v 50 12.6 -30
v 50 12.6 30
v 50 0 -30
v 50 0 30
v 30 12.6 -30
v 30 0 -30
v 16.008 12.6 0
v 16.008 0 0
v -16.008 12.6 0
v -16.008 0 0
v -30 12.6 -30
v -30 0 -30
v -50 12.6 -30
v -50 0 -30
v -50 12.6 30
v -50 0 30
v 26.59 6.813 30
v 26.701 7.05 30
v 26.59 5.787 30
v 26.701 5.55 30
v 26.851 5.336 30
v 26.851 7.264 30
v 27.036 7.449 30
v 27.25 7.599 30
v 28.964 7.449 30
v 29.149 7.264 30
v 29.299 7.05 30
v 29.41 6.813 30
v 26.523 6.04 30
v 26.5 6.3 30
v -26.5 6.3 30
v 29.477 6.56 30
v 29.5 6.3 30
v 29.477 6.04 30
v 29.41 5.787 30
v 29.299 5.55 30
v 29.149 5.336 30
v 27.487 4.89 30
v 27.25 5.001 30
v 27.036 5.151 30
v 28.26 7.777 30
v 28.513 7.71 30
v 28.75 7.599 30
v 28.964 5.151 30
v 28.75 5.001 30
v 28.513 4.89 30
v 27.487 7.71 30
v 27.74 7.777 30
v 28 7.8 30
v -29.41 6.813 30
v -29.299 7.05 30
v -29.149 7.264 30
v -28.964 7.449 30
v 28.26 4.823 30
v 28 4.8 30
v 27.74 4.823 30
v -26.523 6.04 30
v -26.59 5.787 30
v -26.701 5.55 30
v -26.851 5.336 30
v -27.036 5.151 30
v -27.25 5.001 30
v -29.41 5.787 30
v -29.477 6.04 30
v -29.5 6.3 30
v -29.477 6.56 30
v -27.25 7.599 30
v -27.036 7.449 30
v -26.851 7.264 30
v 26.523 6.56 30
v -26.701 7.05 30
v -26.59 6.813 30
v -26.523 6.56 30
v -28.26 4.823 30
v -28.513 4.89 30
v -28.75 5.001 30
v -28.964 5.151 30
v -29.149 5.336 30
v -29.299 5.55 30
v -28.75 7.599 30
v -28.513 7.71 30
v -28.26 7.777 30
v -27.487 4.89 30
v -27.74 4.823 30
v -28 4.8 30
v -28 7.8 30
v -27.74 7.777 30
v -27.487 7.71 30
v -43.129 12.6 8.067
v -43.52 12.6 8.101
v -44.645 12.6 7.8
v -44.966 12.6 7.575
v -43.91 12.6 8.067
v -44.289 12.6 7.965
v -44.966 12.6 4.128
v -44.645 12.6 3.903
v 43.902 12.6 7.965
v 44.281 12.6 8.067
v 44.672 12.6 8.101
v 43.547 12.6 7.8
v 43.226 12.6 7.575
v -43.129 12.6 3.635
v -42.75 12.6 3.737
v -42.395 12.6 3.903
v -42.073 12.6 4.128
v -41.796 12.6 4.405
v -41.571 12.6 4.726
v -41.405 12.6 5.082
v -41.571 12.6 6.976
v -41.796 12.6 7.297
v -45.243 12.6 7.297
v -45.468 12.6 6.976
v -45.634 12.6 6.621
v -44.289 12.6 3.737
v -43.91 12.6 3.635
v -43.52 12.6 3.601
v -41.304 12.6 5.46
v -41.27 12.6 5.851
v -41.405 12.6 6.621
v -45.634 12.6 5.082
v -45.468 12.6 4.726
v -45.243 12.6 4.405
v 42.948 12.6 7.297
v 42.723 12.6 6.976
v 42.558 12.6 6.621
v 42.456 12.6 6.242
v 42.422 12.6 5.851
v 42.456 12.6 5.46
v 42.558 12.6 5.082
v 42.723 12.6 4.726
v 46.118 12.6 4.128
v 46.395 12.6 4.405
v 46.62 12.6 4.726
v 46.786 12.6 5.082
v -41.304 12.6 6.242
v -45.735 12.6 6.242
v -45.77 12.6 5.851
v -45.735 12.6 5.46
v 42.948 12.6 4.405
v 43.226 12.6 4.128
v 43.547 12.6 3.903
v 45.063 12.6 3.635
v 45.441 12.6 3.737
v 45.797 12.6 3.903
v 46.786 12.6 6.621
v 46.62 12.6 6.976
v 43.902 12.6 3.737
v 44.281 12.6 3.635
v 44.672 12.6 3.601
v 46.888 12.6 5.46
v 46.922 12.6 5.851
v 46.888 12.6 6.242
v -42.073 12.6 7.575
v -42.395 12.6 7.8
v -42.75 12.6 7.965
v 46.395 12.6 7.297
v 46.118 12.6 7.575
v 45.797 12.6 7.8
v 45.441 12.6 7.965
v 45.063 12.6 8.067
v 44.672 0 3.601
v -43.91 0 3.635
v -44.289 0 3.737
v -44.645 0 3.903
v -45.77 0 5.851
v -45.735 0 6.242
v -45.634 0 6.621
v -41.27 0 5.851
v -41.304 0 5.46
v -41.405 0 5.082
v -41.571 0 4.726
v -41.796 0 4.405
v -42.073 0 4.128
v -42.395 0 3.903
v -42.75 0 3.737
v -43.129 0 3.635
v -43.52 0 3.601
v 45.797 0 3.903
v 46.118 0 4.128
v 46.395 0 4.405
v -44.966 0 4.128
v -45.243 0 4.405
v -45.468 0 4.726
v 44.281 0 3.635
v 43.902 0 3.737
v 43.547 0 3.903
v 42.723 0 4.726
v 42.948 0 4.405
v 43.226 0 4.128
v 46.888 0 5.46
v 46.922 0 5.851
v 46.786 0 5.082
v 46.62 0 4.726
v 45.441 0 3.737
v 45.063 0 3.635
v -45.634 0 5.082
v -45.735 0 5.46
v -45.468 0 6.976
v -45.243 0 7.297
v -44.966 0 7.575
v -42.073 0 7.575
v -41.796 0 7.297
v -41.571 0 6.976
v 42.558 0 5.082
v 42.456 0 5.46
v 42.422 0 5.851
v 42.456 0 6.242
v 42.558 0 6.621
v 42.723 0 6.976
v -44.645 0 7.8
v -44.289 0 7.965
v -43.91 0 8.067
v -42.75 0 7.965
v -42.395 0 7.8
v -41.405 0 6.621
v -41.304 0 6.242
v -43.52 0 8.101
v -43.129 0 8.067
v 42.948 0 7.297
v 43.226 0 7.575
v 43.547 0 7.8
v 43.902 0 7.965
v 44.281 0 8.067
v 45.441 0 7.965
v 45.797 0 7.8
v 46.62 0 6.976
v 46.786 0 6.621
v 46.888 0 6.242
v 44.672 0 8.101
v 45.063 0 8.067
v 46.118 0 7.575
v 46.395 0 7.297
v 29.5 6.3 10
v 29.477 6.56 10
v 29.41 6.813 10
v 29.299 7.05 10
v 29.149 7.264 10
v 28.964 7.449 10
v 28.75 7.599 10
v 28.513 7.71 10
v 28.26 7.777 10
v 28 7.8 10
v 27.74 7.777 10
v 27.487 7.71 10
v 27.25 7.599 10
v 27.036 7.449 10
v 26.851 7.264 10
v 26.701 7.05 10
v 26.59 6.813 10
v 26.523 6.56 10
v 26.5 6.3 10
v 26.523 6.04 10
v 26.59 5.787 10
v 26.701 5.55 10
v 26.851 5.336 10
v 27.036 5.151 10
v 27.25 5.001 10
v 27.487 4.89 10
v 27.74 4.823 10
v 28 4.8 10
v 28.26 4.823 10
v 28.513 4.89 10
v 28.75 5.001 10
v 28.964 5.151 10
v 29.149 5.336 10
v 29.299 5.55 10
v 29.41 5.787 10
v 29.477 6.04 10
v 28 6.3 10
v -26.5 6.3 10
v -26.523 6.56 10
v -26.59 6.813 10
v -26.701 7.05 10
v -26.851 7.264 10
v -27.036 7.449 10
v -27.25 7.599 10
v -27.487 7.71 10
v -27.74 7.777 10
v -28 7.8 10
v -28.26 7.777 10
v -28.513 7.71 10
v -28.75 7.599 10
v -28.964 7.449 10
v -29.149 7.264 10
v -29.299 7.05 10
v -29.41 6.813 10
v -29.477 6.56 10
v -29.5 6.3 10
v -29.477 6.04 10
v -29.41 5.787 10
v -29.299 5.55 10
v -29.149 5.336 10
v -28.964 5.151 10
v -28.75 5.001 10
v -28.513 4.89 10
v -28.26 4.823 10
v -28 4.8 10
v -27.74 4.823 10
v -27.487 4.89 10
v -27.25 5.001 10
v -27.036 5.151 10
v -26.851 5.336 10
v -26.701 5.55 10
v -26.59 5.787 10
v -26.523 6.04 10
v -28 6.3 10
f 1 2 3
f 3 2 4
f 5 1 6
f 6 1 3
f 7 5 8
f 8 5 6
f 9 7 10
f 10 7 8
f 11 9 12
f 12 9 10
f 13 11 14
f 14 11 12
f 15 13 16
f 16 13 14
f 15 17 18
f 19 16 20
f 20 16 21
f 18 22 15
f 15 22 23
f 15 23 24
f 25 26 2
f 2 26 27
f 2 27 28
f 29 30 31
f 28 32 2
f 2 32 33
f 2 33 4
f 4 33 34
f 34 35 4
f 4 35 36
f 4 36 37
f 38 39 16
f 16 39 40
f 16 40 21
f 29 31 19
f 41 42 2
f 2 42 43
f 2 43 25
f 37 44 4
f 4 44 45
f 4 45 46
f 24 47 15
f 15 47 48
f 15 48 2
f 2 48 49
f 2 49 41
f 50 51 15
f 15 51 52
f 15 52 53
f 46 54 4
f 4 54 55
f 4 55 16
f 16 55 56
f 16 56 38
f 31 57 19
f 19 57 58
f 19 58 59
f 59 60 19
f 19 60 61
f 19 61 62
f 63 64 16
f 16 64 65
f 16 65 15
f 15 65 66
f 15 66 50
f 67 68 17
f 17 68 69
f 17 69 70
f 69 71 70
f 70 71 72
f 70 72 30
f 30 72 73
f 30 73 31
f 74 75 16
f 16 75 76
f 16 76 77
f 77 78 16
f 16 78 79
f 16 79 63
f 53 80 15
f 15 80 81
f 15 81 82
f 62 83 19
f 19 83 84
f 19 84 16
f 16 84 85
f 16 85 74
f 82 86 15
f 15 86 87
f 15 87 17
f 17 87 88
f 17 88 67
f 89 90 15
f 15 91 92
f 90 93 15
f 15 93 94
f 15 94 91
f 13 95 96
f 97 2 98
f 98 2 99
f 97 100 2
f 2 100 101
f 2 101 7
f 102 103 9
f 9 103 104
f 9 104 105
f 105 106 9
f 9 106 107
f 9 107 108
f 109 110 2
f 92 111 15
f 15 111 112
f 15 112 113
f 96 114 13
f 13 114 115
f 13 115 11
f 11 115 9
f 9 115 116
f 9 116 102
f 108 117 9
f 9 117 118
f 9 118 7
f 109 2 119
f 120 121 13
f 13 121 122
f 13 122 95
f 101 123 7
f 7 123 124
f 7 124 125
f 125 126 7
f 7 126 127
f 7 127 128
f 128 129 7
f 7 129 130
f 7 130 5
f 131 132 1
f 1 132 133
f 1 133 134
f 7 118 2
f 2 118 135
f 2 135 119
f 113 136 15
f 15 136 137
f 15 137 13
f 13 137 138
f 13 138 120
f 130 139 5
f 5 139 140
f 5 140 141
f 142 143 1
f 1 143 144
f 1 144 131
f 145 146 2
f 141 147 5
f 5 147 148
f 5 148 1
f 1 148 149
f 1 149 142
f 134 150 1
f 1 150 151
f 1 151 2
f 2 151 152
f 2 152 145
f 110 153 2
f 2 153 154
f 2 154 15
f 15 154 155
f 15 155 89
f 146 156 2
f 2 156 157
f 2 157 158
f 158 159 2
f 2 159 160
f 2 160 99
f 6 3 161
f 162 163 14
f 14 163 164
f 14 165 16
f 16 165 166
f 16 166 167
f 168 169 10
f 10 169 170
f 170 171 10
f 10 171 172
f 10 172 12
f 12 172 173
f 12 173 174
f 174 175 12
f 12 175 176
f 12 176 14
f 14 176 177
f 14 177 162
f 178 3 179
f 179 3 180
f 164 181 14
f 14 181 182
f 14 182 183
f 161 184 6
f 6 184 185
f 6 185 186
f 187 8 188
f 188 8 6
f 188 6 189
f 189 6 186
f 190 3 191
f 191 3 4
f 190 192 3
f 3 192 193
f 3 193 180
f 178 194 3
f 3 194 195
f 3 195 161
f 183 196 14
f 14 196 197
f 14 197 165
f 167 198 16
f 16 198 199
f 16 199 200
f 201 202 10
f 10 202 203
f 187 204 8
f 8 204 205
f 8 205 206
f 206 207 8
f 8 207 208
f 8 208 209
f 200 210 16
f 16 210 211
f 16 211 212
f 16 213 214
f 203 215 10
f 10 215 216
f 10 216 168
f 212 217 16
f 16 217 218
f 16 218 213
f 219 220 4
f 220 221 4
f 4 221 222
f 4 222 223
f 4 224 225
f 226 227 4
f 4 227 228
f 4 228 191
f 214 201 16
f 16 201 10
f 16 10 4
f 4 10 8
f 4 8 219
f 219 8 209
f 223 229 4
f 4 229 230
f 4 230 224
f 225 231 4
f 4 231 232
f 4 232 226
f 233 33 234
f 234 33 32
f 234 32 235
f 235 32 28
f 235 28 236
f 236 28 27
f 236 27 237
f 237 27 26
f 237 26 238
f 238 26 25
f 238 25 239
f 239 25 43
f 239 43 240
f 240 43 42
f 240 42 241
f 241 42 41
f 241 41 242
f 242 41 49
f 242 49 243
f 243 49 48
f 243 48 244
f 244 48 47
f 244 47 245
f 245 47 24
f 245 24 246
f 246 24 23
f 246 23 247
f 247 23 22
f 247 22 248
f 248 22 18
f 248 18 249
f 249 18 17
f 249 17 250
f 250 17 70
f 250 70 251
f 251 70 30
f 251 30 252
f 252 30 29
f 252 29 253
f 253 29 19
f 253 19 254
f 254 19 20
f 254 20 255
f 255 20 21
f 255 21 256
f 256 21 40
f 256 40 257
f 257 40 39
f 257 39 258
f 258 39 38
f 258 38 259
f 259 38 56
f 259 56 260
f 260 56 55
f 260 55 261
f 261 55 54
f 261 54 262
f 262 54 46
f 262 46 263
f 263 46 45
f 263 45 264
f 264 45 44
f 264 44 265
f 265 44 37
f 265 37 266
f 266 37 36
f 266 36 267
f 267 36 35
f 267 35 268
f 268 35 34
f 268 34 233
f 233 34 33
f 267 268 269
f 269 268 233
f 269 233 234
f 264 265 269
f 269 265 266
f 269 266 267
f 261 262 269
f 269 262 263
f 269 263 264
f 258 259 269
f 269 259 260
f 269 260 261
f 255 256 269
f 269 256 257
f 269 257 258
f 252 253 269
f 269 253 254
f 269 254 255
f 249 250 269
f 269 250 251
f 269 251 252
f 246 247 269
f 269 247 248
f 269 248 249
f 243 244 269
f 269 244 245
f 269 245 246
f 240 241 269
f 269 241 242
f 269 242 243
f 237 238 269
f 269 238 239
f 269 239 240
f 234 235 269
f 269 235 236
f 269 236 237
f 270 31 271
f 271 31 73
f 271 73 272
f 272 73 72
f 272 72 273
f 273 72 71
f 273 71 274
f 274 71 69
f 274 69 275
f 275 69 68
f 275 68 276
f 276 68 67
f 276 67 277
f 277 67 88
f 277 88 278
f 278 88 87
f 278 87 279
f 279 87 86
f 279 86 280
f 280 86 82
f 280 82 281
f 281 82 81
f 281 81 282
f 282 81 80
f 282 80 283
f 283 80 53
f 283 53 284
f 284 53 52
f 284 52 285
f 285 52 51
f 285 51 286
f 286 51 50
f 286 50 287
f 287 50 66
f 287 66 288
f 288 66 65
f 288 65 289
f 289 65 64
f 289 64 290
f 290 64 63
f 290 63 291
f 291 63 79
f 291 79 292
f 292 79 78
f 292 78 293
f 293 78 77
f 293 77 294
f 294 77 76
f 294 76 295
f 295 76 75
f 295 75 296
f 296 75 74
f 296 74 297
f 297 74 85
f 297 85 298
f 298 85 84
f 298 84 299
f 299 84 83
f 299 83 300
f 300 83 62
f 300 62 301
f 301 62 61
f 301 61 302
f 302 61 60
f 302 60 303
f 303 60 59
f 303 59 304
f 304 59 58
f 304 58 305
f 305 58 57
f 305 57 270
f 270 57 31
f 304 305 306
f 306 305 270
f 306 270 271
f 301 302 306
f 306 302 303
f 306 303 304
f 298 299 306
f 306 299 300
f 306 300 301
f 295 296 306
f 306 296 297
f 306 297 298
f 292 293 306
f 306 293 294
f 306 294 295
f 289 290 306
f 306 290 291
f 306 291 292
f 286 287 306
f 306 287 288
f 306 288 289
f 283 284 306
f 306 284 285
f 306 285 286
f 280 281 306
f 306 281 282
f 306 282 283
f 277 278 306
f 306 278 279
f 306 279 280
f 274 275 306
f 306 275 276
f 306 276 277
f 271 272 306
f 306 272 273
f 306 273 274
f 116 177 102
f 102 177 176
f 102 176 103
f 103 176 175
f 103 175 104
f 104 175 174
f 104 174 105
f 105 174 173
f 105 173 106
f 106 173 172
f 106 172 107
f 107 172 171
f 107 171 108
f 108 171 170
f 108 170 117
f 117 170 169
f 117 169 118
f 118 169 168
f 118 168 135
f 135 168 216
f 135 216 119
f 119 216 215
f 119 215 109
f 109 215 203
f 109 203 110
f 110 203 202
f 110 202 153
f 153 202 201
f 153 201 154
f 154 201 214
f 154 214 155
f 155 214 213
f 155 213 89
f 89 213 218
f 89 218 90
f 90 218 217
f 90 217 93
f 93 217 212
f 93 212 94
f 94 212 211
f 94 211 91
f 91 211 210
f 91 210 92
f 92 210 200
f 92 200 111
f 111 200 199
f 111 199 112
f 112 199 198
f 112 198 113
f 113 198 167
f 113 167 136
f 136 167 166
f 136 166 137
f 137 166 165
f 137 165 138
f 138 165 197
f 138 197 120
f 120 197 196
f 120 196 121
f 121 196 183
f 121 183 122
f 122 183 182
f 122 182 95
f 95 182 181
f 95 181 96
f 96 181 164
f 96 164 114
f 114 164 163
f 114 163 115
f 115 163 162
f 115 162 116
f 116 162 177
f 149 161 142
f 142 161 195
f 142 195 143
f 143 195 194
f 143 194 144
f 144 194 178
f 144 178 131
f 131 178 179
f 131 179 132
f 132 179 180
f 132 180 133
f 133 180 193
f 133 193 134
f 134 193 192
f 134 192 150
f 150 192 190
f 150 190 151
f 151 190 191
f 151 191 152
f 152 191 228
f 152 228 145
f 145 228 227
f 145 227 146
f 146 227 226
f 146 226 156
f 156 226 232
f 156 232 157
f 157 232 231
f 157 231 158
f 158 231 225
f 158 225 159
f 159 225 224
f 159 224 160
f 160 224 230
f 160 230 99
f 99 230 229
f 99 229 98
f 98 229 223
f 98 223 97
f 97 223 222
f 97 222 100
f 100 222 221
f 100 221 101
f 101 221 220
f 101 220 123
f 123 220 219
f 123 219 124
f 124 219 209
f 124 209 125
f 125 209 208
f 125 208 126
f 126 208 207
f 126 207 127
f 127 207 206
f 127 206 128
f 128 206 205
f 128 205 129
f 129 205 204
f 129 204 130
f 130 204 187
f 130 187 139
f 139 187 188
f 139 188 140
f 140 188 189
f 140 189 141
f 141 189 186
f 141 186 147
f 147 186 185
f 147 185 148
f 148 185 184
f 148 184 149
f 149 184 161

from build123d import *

# Parameters (mm, degrees)
BOSS_EXTRUDE1_DEPTH = 12.6
SKETCH2_R           = 1.5
CUT_EXTRUDE1_DEPTH  = 20
CUT_EXTRUDE2_REACH  = 14.6
SKETCH3_R           = 2.25


with BuildPart() as part:
    # Sketch1 → Boss-Extrude1 (new body)
    with BuildSketch(Plane(origin=(0, 0, 0), x_dir=(1, 0, 0), z_dir=(0, 1, 0))):
        Polygon((-30, 30), (-16.00813249, 0), (16.00813249, 0), (30, 30), (50, 30), (50, -30), (-50, -30), (-50, 30), align=None)
    extrude(amount=BOSS_EXTRUDE1_DEPTH)

    # Sketch2 → Cut-Extrude1 (cut)
    with BuildSketch(Plane.XY.offset(30)):
        with Locations((-28, 6.3)):
            Circle(SKETCH2_R)
        with Locations((28, 6.3)):
            Circle(SKETCH2_R)
    extrude(amount=-CUT_EXTRUDE1_DEPTH, mode=Mode.SUBTRACT)

    # Sketch3 → Cut-Extrude2 (cut, up to next)
    with BuildSketch(Plane.XZ, mode=Mode.PRIVATE) as cut_extrude2_sk1:
        with Locations((44.671841303, 5.85113754)):
            Circle(SKETCH3_R)
    cut_extrude2_tool1 = extrude(cut_extrude2_sk1.sketch, amount=-CUT_EXTRUDE2_REACH, mode=Mode.PRIVATE) & part.part
    add(cut_extrude2_tool1.solids().sort_by_distance((44.671841, 0, 5.851138))[0], mode=Mode.SUBTRACT)
    # Sketch3 → Cut-Extrude2 (cut, up to next)
    with BuildSketch(Plane.XZ, mode=Mode.PRIVATE) as cut_extrude2_sk2:
        with Locations((-43.519626776, 5.85113754)):
            Circle(SKETCH3_R)
    cut_extrude2_tool2 = extrude(cut_extrude2_sk2.sketch, amount=-CUT_EXTRUDE2_REACH, mode=Mode.PRIVATE) & part.part
    add(cut_extrude2_tool2.solids().sort_by_distance((-43.519627, 0, 5.851138))[0], mode=Mode.SUBTRACT)


solid = part.part
